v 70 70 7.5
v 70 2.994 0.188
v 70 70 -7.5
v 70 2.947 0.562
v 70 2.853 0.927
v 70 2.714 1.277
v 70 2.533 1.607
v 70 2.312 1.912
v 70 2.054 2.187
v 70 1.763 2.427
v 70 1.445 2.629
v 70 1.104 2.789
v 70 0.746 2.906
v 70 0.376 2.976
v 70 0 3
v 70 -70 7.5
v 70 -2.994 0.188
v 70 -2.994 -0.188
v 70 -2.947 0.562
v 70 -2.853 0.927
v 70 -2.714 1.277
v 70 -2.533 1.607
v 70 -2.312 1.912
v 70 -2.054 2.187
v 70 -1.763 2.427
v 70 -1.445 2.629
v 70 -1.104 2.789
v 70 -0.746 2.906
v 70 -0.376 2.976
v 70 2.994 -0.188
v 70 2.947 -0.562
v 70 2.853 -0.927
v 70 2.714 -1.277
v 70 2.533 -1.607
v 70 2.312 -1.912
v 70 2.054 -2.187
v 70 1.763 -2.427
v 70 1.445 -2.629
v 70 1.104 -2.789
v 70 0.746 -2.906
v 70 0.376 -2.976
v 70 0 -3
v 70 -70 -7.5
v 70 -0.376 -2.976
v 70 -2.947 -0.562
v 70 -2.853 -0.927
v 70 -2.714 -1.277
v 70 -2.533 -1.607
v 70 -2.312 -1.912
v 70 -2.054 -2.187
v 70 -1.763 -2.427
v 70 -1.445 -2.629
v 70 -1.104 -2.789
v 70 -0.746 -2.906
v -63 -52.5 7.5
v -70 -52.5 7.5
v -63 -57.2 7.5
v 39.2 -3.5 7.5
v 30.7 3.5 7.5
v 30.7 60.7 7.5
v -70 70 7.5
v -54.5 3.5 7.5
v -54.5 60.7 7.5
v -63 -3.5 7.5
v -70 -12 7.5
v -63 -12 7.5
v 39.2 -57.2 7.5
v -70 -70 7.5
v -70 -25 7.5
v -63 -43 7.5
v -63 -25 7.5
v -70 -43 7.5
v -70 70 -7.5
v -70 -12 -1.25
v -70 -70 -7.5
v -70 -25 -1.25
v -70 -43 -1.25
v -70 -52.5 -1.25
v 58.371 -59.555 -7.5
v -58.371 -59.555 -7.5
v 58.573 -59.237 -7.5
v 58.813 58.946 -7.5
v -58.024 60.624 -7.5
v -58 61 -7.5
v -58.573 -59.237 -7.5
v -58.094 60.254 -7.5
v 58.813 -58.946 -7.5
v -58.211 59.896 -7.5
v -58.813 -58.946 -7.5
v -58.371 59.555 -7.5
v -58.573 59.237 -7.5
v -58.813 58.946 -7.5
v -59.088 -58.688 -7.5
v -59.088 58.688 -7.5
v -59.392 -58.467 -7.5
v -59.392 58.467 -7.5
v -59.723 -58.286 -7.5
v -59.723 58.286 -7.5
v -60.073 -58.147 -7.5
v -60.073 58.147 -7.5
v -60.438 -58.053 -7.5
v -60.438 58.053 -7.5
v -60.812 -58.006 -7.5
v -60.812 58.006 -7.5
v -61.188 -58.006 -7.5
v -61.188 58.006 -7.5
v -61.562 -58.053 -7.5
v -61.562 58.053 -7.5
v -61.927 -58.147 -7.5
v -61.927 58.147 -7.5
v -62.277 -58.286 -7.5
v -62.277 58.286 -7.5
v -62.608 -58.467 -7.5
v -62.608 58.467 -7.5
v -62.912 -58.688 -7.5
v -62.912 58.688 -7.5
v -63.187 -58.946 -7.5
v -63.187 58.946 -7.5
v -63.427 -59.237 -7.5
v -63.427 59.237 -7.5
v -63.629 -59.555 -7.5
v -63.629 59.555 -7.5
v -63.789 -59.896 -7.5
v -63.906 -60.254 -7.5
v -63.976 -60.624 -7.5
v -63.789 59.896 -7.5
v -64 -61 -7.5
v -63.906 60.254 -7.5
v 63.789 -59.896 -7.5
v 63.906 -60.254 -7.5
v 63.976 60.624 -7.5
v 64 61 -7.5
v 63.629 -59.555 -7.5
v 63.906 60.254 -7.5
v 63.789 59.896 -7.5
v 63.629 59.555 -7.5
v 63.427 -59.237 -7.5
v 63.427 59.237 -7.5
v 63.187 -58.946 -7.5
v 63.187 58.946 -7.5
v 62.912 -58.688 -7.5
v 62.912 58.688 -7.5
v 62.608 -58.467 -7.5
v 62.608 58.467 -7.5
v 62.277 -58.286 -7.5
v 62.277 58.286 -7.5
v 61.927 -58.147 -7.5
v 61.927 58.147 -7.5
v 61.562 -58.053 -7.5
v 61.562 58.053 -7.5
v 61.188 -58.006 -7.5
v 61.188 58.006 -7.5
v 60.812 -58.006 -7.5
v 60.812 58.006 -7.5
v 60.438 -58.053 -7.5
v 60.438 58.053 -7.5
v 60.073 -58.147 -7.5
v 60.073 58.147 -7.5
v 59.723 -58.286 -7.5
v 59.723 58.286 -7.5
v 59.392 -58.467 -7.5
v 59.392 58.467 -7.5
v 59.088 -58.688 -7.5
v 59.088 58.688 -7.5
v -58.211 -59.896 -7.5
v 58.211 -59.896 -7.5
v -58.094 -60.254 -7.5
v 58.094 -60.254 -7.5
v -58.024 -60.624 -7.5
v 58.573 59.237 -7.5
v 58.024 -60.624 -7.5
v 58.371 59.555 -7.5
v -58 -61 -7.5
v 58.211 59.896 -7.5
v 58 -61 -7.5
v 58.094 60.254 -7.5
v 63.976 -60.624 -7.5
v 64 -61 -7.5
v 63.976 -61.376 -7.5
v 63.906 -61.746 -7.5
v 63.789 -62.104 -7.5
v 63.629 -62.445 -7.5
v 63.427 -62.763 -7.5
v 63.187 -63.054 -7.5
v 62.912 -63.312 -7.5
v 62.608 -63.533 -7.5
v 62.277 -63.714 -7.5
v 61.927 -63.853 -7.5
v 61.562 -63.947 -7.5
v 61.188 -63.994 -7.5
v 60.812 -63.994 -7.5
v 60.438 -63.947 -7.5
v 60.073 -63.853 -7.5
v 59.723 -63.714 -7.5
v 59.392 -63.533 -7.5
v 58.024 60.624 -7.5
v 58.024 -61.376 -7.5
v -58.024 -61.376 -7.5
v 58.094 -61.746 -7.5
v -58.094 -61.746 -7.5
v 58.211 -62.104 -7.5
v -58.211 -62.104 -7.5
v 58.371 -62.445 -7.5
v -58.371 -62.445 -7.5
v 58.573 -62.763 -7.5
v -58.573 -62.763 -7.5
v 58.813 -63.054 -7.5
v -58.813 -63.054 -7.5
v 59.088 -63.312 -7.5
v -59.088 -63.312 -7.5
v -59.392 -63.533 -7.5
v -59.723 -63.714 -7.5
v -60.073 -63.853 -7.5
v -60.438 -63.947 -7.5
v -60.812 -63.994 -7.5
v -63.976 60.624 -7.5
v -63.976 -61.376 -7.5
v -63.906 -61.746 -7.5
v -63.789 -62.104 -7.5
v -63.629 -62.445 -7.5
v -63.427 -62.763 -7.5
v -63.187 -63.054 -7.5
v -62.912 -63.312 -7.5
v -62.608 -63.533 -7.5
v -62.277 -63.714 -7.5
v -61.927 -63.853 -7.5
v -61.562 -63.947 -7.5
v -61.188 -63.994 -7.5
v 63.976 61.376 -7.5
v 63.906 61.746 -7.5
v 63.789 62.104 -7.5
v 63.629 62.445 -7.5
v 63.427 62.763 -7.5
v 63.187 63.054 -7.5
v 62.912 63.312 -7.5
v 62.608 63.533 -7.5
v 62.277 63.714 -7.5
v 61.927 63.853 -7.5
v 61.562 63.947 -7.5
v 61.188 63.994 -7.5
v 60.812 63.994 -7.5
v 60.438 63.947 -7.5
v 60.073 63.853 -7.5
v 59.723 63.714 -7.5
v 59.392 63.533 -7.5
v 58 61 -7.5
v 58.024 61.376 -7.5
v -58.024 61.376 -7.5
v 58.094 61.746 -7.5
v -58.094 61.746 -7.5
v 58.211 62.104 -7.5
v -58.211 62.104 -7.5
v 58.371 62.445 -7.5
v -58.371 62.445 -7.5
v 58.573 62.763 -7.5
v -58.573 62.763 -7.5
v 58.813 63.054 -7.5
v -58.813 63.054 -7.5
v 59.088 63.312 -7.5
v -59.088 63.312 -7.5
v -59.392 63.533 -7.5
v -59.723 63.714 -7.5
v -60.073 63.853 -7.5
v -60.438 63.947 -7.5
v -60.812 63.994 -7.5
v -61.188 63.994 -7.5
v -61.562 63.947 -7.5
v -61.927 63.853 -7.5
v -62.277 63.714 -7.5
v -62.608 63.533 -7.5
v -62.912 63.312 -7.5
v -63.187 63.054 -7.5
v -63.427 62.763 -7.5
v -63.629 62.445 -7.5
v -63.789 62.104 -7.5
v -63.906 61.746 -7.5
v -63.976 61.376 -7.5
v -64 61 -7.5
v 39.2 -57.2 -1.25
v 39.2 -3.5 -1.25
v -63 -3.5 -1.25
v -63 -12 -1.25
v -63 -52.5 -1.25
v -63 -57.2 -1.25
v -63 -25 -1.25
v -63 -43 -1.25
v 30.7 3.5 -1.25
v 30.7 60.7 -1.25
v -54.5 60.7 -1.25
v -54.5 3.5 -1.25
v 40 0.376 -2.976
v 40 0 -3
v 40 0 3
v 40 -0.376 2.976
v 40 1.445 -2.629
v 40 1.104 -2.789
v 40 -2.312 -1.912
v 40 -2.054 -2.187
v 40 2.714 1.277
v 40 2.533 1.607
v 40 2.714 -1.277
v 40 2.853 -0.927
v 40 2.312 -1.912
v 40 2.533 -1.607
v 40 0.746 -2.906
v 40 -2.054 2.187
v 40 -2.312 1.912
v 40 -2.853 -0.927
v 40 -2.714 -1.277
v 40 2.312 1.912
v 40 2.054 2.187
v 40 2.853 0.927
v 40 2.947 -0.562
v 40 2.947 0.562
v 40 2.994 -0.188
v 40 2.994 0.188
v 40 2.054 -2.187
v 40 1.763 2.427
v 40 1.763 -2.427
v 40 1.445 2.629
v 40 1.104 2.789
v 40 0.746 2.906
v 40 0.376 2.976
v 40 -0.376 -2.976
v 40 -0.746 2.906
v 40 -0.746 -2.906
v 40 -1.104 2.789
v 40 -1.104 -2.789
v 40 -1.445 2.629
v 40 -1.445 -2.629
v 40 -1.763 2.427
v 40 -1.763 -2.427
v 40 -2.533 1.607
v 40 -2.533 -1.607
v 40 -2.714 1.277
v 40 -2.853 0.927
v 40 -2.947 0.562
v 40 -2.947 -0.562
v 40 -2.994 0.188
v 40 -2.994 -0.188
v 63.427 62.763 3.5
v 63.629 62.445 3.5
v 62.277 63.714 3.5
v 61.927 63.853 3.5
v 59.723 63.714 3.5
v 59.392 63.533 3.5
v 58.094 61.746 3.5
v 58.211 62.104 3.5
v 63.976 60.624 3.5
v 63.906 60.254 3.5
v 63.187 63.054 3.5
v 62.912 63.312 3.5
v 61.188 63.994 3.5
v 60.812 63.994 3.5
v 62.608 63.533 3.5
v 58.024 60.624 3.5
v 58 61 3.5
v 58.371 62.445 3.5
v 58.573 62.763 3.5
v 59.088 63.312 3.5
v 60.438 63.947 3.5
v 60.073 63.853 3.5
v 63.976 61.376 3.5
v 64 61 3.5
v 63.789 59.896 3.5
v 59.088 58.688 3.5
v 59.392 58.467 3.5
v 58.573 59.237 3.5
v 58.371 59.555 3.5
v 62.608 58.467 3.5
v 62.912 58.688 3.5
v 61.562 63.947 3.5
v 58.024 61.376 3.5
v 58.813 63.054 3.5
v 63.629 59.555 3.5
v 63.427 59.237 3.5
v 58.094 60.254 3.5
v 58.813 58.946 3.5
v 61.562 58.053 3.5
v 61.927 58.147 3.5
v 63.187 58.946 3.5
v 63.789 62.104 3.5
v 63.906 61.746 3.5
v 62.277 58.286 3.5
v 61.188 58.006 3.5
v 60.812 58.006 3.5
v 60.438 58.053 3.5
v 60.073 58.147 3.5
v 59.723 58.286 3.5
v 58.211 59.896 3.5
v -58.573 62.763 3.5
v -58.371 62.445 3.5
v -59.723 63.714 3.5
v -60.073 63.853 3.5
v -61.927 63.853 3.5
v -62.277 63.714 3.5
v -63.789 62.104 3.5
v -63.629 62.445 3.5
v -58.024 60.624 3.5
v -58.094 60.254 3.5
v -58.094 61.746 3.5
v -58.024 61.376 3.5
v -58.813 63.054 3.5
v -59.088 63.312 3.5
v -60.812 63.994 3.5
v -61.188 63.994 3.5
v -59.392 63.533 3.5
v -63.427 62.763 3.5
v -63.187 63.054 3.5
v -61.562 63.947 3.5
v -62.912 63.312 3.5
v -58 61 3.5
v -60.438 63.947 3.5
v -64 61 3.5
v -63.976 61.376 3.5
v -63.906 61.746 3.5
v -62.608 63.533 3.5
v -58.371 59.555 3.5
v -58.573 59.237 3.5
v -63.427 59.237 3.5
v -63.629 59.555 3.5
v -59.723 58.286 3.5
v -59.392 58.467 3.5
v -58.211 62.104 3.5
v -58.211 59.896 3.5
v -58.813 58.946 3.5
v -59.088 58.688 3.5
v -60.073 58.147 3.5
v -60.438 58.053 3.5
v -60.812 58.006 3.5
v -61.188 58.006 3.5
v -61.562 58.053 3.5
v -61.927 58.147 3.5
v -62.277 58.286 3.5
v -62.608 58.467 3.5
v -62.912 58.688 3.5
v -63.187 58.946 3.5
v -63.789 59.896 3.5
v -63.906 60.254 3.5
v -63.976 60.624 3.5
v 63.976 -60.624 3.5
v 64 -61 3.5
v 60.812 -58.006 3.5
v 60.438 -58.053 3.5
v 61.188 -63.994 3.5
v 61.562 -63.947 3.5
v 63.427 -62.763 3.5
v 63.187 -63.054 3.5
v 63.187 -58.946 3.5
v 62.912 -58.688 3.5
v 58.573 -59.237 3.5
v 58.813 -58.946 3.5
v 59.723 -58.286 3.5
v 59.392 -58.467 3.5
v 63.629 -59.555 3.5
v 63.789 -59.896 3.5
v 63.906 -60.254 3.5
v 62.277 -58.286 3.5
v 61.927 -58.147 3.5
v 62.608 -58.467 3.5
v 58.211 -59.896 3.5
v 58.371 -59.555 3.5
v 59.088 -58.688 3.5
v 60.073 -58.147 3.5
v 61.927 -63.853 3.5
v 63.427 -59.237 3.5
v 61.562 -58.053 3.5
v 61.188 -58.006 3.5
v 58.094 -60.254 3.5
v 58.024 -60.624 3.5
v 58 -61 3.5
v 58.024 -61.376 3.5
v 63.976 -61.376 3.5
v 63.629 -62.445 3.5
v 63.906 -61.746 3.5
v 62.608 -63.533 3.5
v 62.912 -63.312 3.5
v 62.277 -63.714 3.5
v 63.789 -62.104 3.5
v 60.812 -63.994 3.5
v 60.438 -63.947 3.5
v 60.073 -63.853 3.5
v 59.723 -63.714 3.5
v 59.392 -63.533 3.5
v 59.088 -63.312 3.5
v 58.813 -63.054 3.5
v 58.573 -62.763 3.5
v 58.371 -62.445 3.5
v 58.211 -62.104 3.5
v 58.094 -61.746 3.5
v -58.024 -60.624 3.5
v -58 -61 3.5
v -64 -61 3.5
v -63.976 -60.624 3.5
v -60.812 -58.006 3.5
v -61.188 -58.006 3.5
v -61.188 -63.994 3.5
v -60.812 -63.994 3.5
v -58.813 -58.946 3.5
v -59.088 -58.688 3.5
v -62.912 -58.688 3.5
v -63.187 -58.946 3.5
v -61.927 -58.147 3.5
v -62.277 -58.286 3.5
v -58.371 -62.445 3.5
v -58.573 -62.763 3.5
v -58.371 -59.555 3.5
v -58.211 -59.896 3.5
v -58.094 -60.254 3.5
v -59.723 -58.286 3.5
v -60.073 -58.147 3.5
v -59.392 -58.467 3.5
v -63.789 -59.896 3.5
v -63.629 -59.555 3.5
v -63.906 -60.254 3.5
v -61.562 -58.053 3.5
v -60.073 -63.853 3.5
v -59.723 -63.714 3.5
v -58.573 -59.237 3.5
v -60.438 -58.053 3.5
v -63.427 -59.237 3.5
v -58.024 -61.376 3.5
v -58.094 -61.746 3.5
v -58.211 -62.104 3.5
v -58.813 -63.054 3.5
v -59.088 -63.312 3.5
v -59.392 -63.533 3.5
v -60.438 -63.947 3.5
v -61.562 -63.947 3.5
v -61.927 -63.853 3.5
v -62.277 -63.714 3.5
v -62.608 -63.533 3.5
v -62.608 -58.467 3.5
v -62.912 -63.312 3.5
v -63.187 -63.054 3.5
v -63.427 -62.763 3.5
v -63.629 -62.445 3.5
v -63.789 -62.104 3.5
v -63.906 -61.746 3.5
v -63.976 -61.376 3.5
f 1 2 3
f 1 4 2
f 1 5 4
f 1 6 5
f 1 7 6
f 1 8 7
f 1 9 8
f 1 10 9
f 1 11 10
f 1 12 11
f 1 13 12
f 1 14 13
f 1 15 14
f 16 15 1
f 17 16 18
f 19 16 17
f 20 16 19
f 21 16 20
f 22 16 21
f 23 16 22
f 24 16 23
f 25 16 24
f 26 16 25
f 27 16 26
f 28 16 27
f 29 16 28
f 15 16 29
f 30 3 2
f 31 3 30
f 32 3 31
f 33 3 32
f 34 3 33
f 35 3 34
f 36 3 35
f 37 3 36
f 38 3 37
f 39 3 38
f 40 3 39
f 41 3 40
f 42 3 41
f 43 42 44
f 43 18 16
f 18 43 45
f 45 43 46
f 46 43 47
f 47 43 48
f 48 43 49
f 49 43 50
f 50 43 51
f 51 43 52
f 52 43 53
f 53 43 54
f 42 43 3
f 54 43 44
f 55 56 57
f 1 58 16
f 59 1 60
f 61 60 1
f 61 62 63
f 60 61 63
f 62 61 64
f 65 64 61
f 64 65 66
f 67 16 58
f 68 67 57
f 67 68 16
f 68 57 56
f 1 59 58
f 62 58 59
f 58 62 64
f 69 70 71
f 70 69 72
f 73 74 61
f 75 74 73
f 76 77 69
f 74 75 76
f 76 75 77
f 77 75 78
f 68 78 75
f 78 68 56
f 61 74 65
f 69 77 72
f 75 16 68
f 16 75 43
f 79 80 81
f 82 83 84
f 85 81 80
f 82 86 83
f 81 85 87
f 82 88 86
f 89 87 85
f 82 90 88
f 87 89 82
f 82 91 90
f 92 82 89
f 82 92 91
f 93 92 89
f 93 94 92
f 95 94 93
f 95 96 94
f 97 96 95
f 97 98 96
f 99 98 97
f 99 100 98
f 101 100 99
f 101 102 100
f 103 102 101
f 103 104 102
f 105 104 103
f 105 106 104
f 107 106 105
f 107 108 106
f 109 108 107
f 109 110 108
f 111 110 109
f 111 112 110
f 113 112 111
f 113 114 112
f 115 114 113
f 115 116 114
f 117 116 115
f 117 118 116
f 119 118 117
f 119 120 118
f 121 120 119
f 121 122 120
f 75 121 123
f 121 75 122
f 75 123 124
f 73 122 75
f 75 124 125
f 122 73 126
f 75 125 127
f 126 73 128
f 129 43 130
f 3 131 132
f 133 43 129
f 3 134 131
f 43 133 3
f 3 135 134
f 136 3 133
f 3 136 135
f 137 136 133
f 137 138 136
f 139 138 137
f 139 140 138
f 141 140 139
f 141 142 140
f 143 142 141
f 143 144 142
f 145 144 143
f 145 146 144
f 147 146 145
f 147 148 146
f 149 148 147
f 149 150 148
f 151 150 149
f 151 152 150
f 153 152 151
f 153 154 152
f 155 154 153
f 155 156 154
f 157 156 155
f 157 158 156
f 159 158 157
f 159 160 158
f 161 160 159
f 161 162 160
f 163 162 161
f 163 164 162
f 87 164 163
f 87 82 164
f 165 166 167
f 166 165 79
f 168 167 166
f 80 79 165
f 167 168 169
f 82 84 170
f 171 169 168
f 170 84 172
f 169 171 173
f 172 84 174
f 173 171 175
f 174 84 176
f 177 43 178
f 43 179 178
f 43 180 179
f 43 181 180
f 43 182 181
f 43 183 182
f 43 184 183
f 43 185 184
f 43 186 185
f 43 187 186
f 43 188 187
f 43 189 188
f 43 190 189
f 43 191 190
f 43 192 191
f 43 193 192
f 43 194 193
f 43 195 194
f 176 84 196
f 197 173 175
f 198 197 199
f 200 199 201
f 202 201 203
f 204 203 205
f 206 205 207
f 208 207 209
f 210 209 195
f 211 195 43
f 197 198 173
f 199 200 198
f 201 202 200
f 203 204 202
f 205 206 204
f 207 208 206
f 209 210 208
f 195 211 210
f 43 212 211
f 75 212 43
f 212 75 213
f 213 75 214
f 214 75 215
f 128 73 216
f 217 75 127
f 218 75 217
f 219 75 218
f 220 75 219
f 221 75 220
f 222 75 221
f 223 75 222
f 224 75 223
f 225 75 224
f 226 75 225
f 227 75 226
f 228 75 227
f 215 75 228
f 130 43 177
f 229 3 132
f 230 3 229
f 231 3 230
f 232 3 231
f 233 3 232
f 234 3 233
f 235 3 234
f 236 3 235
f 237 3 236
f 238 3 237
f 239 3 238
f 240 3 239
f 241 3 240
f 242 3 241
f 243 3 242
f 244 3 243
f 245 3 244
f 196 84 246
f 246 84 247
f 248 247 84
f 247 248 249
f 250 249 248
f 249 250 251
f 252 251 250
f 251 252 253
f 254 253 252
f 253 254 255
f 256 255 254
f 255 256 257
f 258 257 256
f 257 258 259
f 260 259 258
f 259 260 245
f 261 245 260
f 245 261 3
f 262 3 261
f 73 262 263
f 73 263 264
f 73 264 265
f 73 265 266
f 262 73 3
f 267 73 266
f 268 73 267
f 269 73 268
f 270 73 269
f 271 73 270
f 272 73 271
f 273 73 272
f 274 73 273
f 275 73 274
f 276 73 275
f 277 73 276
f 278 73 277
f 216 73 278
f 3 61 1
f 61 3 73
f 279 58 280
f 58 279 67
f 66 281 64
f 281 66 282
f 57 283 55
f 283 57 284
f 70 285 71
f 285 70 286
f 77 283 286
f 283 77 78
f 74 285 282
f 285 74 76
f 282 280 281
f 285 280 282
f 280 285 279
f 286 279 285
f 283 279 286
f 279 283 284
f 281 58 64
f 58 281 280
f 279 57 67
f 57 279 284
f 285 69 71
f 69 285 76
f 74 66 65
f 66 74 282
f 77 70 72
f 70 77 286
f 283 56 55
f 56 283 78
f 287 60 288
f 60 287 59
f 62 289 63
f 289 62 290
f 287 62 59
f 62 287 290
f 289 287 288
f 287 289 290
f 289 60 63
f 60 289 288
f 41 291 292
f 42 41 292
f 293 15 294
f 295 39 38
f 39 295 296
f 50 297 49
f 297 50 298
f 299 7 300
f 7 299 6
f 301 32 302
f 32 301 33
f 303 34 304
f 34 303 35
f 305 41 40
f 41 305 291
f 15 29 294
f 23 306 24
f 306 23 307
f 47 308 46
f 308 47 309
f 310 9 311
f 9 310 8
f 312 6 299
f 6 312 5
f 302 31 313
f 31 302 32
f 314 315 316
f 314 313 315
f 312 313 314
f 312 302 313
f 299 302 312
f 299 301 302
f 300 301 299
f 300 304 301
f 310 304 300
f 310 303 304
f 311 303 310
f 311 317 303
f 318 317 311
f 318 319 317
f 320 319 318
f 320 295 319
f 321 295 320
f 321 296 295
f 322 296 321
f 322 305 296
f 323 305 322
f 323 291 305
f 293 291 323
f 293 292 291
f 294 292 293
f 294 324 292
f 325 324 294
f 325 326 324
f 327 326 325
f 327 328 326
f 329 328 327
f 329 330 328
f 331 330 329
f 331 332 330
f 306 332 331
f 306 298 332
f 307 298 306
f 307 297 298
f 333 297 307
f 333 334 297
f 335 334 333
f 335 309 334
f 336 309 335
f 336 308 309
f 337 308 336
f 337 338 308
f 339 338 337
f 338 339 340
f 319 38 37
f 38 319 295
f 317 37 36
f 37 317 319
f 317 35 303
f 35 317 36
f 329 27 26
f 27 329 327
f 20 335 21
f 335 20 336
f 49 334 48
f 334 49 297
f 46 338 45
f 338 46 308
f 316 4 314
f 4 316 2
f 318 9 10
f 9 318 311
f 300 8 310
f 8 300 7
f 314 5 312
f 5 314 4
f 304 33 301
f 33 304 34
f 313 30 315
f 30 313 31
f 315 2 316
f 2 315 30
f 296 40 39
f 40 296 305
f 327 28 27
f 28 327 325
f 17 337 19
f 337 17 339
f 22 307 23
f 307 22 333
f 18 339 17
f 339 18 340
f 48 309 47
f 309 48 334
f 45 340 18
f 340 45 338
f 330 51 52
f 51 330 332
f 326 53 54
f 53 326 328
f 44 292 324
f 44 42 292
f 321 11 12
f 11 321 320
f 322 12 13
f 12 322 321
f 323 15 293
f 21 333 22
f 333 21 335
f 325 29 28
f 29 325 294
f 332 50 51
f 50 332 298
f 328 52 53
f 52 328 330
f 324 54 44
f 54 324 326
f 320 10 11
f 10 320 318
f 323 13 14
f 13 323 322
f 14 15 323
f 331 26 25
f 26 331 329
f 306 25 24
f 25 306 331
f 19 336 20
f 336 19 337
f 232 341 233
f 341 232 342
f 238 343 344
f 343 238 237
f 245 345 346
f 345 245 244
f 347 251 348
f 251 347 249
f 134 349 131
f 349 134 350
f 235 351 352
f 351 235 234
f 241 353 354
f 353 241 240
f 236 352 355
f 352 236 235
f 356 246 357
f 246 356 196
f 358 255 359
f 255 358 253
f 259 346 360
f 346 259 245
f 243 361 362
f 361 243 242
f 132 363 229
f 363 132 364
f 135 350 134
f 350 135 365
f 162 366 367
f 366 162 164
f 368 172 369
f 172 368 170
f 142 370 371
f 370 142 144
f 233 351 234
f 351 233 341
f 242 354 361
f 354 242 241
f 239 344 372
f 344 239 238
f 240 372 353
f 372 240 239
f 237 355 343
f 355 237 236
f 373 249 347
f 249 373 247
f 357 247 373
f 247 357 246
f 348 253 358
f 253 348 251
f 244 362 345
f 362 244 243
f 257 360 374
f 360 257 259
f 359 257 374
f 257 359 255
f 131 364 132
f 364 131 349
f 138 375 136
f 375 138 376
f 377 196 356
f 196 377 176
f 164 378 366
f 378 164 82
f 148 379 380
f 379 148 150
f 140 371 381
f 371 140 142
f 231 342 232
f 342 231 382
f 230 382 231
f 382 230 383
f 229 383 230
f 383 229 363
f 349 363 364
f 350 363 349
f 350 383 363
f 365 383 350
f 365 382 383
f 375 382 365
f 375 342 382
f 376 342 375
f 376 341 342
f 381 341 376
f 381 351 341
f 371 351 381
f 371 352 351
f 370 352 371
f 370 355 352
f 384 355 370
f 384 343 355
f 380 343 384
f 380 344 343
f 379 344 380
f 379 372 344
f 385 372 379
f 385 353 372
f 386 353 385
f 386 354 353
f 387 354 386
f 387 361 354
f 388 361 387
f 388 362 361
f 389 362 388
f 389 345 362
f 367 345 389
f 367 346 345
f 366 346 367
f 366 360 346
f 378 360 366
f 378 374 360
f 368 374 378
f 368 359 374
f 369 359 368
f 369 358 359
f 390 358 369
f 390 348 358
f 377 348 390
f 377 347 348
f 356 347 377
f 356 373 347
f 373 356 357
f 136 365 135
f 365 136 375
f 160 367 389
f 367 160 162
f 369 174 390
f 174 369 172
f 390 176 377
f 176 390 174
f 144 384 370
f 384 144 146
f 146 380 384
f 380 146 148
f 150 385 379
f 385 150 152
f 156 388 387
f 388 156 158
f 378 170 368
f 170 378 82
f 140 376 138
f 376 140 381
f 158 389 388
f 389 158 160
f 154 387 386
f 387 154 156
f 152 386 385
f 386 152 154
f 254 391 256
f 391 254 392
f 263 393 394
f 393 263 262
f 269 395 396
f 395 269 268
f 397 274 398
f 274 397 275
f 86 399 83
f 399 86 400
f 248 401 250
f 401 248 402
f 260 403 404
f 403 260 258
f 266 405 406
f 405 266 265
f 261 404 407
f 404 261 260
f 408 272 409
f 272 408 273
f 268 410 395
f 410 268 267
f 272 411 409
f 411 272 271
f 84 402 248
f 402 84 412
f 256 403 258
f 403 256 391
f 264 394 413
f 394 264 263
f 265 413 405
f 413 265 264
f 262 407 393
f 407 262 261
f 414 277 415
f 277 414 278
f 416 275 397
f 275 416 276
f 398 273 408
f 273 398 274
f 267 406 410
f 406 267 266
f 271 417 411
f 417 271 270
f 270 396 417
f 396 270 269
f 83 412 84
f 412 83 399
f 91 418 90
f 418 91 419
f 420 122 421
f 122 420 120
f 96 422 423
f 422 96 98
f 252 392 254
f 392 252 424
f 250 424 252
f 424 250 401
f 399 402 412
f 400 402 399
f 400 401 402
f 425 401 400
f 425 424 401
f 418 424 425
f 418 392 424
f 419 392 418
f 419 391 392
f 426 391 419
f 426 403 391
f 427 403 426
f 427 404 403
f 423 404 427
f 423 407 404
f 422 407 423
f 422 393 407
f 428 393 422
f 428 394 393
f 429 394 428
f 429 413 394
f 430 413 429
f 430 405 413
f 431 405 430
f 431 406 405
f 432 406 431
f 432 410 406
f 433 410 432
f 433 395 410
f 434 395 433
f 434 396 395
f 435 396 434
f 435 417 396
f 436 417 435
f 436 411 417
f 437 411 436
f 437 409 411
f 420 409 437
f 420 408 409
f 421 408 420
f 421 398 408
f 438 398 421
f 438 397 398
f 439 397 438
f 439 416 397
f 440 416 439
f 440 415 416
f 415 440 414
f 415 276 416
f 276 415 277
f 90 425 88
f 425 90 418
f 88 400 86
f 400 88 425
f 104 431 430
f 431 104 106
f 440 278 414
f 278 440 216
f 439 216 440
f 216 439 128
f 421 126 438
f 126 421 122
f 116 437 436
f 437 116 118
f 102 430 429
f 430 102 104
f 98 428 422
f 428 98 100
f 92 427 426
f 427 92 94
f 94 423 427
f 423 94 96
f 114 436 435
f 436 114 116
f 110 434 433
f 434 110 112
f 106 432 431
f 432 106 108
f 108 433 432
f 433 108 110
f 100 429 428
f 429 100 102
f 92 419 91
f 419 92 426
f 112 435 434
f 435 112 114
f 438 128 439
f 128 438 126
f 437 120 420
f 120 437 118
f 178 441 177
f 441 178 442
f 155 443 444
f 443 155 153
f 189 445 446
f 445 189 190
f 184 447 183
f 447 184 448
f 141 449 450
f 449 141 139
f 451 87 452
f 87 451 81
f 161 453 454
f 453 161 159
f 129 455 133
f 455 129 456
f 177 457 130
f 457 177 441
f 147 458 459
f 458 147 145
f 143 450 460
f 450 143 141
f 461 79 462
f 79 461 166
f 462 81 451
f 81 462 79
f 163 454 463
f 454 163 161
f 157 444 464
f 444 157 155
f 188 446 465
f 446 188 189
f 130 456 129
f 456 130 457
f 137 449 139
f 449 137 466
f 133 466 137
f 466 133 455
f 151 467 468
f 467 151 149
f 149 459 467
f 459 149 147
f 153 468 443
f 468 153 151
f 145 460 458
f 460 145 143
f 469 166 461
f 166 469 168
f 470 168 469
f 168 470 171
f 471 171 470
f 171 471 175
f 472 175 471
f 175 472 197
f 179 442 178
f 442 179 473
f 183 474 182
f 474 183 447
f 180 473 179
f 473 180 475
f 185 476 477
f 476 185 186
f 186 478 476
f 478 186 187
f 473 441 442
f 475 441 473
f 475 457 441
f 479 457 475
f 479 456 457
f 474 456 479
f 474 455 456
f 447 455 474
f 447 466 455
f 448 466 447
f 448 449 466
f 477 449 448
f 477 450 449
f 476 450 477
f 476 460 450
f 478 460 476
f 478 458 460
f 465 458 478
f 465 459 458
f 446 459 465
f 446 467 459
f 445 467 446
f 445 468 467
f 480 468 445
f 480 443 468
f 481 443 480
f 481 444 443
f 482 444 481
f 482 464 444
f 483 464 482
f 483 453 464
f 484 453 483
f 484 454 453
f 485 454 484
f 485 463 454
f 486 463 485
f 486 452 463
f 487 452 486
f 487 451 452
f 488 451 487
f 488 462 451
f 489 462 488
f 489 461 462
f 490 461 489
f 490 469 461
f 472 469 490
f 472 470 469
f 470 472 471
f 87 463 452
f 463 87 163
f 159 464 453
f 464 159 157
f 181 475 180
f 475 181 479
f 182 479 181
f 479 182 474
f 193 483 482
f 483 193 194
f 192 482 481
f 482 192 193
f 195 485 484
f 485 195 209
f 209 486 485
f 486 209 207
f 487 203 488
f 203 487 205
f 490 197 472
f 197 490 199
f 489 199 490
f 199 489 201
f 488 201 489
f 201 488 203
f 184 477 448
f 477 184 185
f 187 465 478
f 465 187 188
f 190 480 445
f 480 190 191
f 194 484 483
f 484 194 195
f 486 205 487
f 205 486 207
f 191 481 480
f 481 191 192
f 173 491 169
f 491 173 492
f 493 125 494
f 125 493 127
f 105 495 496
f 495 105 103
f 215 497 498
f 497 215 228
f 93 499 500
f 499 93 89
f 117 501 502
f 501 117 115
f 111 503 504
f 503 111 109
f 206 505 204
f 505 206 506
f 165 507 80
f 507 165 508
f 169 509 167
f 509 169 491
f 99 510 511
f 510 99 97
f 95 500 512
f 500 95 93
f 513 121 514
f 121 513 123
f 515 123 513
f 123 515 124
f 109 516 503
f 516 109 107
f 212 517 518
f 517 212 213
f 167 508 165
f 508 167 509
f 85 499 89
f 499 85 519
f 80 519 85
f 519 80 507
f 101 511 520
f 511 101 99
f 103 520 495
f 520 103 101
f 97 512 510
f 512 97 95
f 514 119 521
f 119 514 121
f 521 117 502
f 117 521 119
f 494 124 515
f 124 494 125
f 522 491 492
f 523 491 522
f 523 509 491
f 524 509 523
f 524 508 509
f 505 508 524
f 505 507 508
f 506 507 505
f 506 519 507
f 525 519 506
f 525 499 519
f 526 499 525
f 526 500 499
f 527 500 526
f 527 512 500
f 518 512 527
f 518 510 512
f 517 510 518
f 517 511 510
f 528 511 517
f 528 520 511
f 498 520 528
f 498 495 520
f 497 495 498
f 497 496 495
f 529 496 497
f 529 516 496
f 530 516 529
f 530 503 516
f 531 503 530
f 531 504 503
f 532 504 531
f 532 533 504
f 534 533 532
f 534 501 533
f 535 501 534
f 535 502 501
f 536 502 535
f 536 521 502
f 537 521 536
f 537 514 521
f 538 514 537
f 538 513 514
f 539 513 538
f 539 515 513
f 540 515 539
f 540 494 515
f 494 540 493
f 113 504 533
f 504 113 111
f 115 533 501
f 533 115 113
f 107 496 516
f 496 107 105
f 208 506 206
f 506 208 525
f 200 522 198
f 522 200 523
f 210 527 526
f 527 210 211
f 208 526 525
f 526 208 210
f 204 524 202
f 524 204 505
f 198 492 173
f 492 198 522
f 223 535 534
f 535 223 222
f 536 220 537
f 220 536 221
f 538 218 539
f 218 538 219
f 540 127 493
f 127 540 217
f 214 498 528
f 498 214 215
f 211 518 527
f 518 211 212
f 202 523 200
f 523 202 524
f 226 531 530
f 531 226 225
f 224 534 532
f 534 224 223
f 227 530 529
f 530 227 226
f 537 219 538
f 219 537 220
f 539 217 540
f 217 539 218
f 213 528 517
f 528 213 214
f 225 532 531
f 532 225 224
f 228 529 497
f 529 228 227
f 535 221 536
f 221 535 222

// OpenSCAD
//Unit: millimeter
//Arduino board
ABwidth = 53.7;
ABlength = 102.2;
ABheight = 10.0;
ABplugin1 = 2.1;
ABplugin2 = 7.0;
ABplugin2height = 10.0;
ABgap1=8.5;
ABgap2=13.0;
ABgap3=18.0;
ABgap4=9.5;

//Bread Board
BBlength = 85.2;
BBwidth = 57.2;
BBheight = 10.0;

//RGB
RGBlength = 20.44;
RGBdiameter = 2.9;
RGBA = 12.5;
RGBB = 1.0;


//Upper Base
UBlength = 140.0; //length is x-axis
UBwidth = 140.0; //y-axis
UBheight = 15.0;
UBgapCam = 7.0;
UBgap1 = (UBlength - UBgapCam - ABwidth - BBwidth) / 2;
UBholeGap = 7.0;

//Camera Attachment
CAdiameter = 6.0;
CAradius = CAdiameter/2;
CAlength = 30.0;

//Lower Base
LBlength = UBlength;
LBwidth = UBwidth;
LBheight = 7.0;
LBgap1 = 30.0;
LBtranslate = -60.0;

//Front Wall
FWlength = LBwidth; //y-axis
FWwidth = 25.0;  //x-axis
FWheight = 30.0;
FWhole = 25.0;
FWgap1 = (FWlength - FWhole)/2;  //distance to the gap
FWgap2 = (FWlength - RGBlength)/2;

//RGB
RGBlength = 20.44;
RGBdiameter = 2.9;
RGBA = 12.5;
RGBB = 1.0;

//RGB attachment
RAwidth = RGBlength; //y-axis
RAheight = 15.0;  //z-axis
RAdepth = 5.0; //x-axis

//battery hole
BAlength = 5.0; //y
BAheight = 20.0; //z
BAdepth = FWwidth;

//arms attachment
AAlength = 20.0;
AAwidth = 5.0; //y-axis
AAheight = 40.0;
AAdistance = 90.0;
AAtranslate = 30.0;
AAholeHeight = AAheight/2 - (AAtranslate - FWheight/2) + LBheight;

//Columns
Clength = 8.0; 
Cheight = 11.0;
Cdiameter = 6.0;
Cradius = Cdiameter/2;
CLockHeight = 1.5;
CLockDiameter = 8.0;
Cdistance = 9.0;  //the center of the hole
holeX = UBlength/2 - Cdistance;
holeY = UBwidth/2 - Cdistance;
holeZ = UBheight/2 - UBheight + Cheight - Cheight/2;

//Back Wall
BWlength = FWlength;
BWwidth = 5.0;
BWheight = 30.0;

//Robot Servo
RSlength = 40.6;
RSwidth = 36.6;  //not the exact width
RSheight = 19.8;
RSdiameter = 4.0;
RSradius = RSdiameter/2;
RSdistance = (RSheight - 2*RSdiameter)/4;
RSA = 7.0;
RSB = 1.5;
RSC = 2.5;
RSD = 4.0;
RSE = 6.5;
RSF = 10.0;

//Servo Attachement
SAlength = 20.0;
SAwidth = RSwidth-RSC-RSD;
SAHwidth = RSF-RSE; //y
SAHlength = RSA;  //x
SAHheight = RSheight;


module cube_true(x, y, z){
    cube(size = [x, y, z], center = true);
}

module cylinder_base(x,y){
    cylinder(h=x,r=y,center=true,$fn=50);
}

module hole_base(x,y,z){
    translate([x,y,z])
    cylinder(h=Cheight,r=Cradius,center = true, $fn=50);
}

module servo_attach(){
    translate([RSlength/2+SAlength/2,LBwidth/2-SAwidth/2,LBtranslate+LBheight/2+RSheight/2]){
        difference(){
            cube_true(SAlength,SAwidth,RSheight);
            translate([-(SAlength/2-RSA/2), SAwidth/2-RSE/2,0]) cube_true(SAHlength,SAHwidth,SAHheight);
            //holes
            translate([-(SAlength/2-RSradius),0,RSheight/2-RSdistance-RSradius]){
                rotate([90,0,0]) cylinder_base(SAwidth,RSradius);
            }
            translate([-(SAlength/2-RSradius),0,-(RSheight/2-RSdistance-RSradius)]){
                rotate([90,0,0]) cylinder_base(SAwidth,RSradius);
            }
        }
    }
}


difference(){
    //combine upper and lower bases
        rotate([0,0,180])
        difference(){
            cube_true(UBlength,UBwidth,UBheight);
            //arduino board
            translate([UBlength/2-ABlength/2-ABplugin2, UBgapCam/2+ABwidth/2,UBheight/4]) cube_true(ABlength,ABwidth,ABheight);
            //plugin1
            translate([UBlength/2-ABplugin2/2, UBgapCam/2+ABgap1+ABgap2/2,UBheight/4]) cube_true(ABplugin2,ABgap2,ABplugin2height);
            //plugin2
            translate([UBlength/2-ABplugin2/2, UBgapCam/2+ABgap1+ABgap2+ABgap3+ABgap4/2,UBheight/4]) cube_true(ABplugin2,ABgap4,ABplugin2height);
            //bread board
            translate([UBlength/2-ABlength/2-ABplugin2,-(UBgapCam/2+BBwidth/2),UBheight/4]) cube_true(BBlength,BBwidth,BBheight);
            //camera attachment
            rotate([0,0,180])
            translate([UBlength/2-CAlength/2,0,0]){
                rotate([0,90,0]) cylinder_base(CAlength, CAradius);
            }
        }
    
    //holes
    hole_base(holeX,holeY,holeZ);
    hole_base(-holeX,holeY,holeZ);
    hole_base(holeX,-holeY,holeZ);
    hole_base(-holeX,-holeY,holeZ);
}
